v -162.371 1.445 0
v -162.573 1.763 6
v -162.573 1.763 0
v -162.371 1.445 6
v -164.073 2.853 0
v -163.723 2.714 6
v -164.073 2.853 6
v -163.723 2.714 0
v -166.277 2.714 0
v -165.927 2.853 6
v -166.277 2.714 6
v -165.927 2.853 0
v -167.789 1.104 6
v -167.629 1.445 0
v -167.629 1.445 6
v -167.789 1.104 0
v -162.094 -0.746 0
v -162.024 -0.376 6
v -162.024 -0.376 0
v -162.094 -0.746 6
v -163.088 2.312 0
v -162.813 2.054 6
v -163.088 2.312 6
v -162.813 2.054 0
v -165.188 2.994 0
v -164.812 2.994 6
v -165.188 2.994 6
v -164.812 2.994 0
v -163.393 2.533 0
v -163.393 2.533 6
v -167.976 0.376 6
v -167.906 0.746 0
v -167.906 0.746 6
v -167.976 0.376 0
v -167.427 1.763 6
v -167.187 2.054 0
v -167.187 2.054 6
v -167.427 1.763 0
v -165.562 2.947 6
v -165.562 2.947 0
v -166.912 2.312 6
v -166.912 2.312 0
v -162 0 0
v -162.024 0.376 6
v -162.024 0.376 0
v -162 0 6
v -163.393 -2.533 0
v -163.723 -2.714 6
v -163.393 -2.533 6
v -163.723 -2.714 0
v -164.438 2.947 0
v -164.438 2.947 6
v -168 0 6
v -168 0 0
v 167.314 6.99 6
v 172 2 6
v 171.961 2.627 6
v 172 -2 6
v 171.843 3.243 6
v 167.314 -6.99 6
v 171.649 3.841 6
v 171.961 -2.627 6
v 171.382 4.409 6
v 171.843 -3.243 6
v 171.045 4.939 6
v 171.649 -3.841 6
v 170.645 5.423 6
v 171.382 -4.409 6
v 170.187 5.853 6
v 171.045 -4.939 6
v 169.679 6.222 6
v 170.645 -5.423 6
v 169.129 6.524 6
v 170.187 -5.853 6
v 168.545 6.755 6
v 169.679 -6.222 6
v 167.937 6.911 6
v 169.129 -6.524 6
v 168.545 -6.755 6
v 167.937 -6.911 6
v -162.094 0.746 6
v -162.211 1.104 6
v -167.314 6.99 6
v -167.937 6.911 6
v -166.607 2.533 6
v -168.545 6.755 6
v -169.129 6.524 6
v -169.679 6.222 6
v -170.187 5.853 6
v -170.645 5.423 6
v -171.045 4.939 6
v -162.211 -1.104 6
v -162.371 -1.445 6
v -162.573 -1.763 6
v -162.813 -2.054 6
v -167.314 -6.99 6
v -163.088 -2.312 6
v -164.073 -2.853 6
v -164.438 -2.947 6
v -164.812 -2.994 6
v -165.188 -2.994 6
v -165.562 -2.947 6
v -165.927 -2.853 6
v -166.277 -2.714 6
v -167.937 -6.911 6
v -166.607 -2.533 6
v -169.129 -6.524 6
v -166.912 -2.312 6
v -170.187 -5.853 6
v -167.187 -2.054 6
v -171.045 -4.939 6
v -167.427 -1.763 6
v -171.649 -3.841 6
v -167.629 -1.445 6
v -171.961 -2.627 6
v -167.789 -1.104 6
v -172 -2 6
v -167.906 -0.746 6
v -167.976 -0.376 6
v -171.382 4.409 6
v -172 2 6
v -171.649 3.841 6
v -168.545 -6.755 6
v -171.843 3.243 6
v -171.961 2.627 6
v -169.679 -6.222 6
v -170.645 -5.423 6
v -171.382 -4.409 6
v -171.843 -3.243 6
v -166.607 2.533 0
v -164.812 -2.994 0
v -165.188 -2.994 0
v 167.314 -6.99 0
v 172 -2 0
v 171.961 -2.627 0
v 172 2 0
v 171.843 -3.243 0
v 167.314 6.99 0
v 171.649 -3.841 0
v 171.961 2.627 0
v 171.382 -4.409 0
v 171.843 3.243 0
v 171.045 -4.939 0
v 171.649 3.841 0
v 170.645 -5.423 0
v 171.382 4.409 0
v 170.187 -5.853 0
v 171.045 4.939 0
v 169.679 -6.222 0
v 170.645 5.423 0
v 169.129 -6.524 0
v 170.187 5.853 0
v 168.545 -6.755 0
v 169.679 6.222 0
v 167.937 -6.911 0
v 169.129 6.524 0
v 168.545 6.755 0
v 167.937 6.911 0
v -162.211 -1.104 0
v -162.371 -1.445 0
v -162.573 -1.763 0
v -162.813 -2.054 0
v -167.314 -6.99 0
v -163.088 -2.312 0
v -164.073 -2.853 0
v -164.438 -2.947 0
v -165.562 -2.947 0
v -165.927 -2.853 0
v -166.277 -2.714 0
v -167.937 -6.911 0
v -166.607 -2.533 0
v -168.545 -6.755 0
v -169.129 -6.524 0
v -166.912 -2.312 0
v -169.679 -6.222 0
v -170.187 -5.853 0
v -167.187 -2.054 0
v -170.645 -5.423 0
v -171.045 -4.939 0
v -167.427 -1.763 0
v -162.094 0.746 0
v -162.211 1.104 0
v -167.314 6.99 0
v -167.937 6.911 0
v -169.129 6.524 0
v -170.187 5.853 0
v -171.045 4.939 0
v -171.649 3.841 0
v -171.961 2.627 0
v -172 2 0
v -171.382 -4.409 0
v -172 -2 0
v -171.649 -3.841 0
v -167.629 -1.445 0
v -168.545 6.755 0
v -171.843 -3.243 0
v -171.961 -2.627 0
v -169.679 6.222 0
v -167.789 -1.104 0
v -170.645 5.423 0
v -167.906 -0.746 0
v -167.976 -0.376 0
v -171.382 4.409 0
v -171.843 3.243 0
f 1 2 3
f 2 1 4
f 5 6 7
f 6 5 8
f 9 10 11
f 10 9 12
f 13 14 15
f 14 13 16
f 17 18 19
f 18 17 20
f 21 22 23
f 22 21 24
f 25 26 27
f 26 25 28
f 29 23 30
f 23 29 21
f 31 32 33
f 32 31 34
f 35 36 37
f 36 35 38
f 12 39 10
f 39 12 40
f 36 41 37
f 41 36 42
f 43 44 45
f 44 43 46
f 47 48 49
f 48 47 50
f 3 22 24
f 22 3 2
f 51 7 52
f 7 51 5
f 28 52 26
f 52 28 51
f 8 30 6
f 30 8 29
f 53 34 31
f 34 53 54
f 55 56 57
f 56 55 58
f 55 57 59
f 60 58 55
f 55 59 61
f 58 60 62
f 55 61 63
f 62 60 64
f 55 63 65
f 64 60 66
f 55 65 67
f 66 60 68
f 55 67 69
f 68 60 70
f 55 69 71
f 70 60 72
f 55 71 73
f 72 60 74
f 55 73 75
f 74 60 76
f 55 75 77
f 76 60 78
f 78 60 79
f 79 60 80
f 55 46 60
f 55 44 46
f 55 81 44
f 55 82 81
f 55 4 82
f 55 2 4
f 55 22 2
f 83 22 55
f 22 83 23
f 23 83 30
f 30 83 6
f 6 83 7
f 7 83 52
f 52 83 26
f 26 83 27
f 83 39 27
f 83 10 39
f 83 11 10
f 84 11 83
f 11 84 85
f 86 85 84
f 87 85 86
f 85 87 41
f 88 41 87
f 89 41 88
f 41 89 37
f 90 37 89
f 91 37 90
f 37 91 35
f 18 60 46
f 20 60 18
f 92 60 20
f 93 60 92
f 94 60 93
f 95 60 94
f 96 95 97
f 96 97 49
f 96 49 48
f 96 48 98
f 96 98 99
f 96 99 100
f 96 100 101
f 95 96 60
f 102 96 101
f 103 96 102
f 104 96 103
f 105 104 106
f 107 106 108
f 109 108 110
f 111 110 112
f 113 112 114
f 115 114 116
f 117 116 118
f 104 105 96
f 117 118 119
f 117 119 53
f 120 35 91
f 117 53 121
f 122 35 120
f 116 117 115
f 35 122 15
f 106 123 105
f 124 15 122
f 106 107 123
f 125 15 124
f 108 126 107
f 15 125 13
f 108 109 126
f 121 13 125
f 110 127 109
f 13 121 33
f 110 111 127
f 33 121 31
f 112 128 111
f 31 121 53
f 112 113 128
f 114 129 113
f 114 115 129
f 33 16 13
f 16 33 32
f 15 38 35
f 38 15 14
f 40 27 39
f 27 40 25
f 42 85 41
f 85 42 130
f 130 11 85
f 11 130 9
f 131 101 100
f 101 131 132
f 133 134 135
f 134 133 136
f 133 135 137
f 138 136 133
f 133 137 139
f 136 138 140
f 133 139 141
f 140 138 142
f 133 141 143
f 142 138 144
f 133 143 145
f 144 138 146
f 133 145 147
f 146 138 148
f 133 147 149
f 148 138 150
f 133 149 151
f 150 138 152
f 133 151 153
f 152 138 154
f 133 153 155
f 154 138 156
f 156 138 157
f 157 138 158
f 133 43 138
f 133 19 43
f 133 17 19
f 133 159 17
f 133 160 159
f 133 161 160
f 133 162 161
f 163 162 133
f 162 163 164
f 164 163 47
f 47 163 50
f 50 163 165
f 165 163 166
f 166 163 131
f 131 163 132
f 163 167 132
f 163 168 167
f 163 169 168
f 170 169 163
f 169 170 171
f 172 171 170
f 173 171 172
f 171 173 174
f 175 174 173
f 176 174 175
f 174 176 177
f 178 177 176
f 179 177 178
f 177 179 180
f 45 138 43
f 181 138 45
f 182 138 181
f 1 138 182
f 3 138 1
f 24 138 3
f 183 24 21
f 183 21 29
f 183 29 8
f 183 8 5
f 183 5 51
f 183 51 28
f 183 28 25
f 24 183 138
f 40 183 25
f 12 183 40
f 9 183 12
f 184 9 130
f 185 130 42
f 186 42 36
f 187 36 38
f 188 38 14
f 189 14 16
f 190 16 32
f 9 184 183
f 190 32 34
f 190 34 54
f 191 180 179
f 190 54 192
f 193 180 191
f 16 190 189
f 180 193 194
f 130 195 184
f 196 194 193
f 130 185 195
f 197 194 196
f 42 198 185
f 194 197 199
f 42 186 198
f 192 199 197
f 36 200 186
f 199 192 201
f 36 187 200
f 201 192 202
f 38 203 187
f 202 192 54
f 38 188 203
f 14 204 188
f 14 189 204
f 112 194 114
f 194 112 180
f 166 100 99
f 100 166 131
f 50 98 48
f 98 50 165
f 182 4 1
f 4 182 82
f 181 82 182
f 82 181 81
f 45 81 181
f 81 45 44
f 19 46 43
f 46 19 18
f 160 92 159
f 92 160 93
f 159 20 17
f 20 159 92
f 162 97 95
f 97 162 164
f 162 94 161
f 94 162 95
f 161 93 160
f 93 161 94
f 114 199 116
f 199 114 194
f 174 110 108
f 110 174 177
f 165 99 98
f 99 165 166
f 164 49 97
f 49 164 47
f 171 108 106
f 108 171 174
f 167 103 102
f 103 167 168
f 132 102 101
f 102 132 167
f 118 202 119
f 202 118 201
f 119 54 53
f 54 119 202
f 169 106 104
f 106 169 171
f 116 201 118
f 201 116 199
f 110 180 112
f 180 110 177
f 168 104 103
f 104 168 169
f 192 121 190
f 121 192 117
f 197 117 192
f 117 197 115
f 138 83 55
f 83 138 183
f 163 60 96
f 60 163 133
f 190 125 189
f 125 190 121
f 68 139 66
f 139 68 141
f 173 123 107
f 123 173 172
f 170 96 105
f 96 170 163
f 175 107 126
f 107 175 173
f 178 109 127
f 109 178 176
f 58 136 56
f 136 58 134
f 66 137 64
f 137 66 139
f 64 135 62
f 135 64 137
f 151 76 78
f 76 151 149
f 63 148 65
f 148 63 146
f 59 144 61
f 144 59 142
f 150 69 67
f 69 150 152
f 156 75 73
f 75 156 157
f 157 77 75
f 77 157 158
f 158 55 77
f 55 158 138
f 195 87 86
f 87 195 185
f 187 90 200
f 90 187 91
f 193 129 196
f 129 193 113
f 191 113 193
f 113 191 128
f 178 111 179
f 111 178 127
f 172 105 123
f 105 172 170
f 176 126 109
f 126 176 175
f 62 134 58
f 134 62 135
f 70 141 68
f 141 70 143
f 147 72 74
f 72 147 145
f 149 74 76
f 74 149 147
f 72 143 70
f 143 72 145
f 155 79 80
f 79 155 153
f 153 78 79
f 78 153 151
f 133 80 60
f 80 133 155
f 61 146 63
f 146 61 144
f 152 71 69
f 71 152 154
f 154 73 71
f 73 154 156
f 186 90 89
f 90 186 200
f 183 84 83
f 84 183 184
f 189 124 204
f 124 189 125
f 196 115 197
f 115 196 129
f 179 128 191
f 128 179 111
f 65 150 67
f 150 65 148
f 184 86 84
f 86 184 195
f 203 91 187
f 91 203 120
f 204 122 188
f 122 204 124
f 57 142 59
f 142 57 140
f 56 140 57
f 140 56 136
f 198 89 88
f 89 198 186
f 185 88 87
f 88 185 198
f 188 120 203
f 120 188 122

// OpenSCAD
$fn = 50;


difference() {
	union() {
		hull() {
			translate(v = [-167.0000000000, 2.0000000000, 0]) {
				cylinder(h = 6, r = 5);
			}
			translate(v = [167.0000000000, 2.0000000000, 0]) {
				cylinder(h = 6, r = 5);
			}
			translate(v = [-167.0000000000, -2.0000000000, 0]) {
				cylinder(h = 6, r = 5);
			}
			translate(v = [167.0000000000, -2.0000000000, 0]) {
				cylinder(h = 6, r = 5);
			}
		}
	}
	union() {
		translate(v = [-165.0000000000, 0.0000000000, 0]) {
			cylinder(h = 6, r = 3.0000000000);
		}
		translate(v = [-165.0000000000, 0.0000000000, 0]) {
			cylinder(h = 6, r = 1.5000000000);
		}
		translate(v = [-165.0000000000, 0.0000000000, 0]) {
			cylinder(h = 6, r = 1.5000000000);
		}
		translate(v = [-165.0000000000, 0.0000000000, 0]) {
			cylinder(h = 6, r = 1.5000000000);
		}
	}
}
